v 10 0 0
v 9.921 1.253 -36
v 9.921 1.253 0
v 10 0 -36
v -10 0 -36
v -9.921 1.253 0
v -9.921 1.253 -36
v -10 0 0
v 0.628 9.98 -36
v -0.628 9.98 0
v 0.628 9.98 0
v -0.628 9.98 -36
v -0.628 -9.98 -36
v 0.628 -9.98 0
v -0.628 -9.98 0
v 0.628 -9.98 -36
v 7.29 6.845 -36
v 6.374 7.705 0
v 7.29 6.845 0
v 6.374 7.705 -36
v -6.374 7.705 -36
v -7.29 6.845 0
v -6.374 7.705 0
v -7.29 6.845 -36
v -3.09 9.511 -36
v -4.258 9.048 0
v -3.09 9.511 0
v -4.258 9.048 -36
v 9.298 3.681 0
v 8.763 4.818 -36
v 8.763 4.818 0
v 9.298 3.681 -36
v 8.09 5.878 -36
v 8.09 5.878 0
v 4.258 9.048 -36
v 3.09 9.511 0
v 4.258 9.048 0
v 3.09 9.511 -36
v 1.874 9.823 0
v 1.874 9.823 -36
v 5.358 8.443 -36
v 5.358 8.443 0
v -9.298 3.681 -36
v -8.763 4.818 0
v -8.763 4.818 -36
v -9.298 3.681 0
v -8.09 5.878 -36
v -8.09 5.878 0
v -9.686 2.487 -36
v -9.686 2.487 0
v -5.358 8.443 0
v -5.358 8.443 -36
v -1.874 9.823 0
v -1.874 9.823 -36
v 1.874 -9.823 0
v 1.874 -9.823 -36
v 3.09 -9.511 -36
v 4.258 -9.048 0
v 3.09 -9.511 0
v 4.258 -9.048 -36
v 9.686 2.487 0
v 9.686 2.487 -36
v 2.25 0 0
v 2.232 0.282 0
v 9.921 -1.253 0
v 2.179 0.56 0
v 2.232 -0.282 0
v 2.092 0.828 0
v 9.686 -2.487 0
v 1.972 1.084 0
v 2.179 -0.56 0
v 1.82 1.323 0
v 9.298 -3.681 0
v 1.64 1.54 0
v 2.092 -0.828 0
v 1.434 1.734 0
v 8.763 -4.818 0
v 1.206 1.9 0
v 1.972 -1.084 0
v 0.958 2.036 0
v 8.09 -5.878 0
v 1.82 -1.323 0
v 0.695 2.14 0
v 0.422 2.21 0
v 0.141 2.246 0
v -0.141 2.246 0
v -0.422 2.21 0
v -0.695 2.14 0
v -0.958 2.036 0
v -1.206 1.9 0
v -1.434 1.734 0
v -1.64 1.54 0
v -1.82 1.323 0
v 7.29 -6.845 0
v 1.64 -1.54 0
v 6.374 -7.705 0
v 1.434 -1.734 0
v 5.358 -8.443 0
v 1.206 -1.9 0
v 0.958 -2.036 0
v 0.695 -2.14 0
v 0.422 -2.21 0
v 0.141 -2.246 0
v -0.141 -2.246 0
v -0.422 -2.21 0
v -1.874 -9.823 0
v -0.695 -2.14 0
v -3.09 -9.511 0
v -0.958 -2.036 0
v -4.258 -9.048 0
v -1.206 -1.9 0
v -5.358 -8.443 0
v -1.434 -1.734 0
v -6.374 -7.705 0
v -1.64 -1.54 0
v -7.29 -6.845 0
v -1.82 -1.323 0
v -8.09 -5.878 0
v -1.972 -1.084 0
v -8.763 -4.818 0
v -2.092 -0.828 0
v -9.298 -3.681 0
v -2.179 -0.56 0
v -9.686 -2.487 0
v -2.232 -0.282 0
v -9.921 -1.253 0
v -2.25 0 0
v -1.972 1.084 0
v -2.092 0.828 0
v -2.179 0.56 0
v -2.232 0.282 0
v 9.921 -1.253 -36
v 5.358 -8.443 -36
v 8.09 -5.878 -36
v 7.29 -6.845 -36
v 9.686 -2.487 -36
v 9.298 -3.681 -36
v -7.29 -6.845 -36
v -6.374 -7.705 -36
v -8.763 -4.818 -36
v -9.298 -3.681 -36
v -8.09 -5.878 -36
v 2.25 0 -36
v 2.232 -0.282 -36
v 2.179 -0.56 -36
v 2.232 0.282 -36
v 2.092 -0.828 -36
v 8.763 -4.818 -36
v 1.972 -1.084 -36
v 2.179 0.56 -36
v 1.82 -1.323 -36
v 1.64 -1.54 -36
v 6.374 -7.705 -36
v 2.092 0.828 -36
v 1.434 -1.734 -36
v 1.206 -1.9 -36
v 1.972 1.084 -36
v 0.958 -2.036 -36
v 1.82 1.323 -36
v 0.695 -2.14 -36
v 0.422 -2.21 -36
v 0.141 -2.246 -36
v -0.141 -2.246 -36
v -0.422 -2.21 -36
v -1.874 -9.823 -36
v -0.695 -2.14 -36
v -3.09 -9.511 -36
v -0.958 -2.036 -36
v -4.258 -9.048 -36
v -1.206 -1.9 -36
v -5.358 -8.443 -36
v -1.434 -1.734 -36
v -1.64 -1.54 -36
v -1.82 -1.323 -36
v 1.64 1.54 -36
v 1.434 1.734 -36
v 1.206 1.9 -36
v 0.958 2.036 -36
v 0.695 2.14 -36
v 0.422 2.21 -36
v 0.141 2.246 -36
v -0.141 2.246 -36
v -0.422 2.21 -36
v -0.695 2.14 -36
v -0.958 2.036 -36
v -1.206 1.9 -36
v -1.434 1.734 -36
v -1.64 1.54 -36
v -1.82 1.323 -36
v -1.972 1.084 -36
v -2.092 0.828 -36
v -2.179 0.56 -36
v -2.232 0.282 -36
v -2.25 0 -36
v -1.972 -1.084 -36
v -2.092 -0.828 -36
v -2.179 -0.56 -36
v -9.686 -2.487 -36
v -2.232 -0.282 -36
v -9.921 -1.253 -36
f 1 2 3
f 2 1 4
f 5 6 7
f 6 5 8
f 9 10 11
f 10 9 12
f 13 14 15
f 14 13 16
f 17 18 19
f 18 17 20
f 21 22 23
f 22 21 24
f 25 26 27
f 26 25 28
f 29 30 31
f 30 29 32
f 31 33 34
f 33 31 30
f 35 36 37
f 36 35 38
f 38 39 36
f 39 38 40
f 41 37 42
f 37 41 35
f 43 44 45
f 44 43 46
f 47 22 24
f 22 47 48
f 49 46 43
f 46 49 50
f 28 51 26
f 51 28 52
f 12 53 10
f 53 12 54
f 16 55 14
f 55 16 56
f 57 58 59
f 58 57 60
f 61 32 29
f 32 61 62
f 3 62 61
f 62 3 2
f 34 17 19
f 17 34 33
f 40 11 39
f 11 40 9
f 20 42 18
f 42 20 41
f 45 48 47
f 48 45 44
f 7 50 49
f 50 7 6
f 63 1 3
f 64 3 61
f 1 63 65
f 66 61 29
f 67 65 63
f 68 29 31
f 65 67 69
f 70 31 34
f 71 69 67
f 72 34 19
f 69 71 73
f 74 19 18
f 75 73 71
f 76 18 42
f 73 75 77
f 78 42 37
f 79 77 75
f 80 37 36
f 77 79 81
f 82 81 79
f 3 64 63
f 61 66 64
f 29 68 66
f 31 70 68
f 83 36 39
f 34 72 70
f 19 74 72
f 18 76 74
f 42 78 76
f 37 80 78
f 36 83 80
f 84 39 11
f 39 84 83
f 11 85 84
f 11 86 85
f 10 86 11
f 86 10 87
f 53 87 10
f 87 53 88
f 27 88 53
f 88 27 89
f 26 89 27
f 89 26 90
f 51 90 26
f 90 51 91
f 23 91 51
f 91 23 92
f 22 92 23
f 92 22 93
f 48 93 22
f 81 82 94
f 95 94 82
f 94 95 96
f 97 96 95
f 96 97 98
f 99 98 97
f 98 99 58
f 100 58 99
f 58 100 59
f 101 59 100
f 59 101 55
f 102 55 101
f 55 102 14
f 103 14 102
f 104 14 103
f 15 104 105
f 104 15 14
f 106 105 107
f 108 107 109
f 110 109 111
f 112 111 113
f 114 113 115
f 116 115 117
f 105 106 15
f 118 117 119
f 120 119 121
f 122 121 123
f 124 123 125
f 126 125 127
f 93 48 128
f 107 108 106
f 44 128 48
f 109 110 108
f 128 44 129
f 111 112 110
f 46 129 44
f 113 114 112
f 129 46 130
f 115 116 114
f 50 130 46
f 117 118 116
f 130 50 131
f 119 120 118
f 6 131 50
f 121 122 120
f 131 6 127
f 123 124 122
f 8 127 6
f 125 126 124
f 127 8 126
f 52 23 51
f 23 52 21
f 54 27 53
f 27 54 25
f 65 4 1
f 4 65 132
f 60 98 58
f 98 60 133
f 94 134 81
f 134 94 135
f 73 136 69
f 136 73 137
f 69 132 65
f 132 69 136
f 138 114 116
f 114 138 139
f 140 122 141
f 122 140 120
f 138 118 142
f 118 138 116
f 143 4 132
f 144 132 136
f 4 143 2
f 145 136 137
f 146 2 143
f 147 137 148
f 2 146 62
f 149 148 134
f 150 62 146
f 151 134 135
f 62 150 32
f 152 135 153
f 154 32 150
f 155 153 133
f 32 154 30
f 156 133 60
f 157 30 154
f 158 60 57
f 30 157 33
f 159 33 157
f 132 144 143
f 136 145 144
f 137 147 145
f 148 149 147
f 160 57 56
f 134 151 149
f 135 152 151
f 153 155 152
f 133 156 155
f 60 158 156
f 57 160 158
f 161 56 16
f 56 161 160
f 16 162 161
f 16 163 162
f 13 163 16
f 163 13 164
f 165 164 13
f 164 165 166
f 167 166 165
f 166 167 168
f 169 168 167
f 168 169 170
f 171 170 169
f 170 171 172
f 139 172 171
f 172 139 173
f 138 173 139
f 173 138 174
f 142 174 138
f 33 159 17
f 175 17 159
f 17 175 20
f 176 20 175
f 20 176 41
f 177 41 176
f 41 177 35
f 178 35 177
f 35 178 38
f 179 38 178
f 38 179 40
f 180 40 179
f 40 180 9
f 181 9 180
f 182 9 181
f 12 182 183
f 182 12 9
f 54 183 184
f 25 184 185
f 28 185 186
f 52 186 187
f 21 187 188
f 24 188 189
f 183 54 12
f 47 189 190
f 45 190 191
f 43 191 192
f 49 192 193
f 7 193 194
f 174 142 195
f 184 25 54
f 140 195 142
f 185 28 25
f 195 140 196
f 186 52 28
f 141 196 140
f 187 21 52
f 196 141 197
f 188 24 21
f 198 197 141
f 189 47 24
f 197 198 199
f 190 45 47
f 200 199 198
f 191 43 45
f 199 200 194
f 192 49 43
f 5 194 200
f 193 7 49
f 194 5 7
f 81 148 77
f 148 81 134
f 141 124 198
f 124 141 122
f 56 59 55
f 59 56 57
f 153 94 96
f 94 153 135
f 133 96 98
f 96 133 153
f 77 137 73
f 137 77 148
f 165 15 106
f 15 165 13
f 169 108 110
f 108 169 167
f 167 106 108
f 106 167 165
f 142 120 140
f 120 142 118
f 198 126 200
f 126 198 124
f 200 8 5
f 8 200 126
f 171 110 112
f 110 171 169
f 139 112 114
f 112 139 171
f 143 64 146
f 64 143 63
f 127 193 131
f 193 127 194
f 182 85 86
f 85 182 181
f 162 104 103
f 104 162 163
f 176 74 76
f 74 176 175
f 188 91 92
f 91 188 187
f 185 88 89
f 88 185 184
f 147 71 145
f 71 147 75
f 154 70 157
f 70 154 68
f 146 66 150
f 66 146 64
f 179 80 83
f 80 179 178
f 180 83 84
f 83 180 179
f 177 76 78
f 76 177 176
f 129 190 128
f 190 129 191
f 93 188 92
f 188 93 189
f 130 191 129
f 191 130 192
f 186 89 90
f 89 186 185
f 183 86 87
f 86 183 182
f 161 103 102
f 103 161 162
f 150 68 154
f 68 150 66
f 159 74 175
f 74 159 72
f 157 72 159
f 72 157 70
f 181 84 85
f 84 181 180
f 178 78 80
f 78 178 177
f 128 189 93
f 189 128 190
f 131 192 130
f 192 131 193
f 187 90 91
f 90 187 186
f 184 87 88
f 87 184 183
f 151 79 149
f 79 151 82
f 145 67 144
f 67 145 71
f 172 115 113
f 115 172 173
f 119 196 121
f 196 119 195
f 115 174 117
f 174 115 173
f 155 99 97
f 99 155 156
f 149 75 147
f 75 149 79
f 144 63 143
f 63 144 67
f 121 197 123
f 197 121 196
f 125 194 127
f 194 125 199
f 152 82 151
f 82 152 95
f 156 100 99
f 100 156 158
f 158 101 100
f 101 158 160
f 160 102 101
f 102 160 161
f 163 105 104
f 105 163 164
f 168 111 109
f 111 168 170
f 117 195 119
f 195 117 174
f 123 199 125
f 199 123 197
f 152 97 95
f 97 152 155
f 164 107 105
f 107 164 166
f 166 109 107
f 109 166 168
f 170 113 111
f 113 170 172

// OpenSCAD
$fn = 50;


difference() {
	union() {
		translate(v = [0, 0, -36.0000000000]) {
			cylinder(h = 36, r = 10.0000000000);
		}
		cylinder(h = 0, r = 20.0000000000);
	}
	union() {
		#translate(v = [0, 0, -36]) {
			cylinder(h = 36, r = 2.2500000000);
		}
	}
}
